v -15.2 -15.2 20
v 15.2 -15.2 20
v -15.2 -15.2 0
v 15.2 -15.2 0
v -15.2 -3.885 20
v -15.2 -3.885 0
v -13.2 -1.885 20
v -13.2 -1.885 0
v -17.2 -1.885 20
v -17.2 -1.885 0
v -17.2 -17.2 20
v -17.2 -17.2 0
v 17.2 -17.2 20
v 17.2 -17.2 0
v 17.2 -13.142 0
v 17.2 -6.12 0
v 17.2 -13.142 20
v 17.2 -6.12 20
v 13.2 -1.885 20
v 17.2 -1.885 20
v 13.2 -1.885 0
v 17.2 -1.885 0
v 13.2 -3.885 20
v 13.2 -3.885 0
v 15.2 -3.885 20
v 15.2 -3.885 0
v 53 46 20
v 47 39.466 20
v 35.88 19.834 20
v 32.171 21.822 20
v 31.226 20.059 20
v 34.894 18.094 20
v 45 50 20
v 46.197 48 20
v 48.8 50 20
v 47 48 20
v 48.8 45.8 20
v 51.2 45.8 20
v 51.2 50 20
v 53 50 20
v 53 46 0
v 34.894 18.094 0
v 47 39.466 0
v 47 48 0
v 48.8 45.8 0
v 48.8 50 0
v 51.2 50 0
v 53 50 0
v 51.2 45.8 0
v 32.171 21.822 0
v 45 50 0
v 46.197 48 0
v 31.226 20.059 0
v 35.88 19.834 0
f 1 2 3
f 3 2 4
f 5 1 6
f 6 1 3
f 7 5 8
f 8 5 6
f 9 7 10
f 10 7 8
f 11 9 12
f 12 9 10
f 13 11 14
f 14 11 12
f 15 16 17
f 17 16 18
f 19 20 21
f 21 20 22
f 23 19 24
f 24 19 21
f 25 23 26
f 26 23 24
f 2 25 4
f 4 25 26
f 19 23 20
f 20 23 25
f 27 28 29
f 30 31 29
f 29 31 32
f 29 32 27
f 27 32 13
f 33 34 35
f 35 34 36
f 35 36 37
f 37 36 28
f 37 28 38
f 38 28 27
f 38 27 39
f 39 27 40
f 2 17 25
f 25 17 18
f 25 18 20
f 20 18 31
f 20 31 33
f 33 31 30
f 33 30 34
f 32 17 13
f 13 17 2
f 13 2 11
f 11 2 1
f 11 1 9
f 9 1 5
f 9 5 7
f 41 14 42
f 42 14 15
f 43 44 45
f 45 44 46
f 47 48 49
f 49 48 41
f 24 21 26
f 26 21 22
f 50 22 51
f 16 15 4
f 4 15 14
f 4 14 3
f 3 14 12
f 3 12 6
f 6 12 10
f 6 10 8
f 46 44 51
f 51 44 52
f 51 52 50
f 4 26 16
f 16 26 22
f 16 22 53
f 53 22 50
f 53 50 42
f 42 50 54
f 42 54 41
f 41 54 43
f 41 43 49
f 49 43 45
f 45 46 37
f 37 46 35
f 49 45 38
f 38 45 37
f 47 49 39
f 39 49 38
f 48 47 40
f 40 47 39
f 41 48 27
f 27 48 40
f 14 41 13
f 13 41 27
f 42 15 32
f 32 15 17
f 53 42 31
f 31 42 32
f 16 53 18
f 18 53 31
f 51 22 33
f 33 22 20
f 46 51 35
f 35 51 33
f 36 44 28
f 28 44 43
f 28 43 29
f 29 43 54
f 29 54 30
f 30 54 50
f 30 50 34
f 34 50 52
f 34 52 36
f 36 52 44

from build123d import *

# Parameters (mm, degrees)
BOSS_EXTRUDE1_DEPTH = 20
BOSS_EXTRUDE2_DEPTH = 20


with BuildPart() as part:
    # Sketch1 → Boss-Extrude1 (new body)
    with BuildSketch(Plane.XY):
        Polygon((-15.2, -15.2), (-15.2, -3.885), (-13.2, -1.885), (-17.2, -1.885), (-17.2, -17.2), (17.2, -17.2), (17.2, -1.885), (13.2, -1.885), (13.2, -3.885), (15.2, -3.885), (15.2, -15.2), align=None)
    extrude(amount=BOSS_EXTRUDE1_DEPTH)

    # Sketch2 → Boss-Extrude2 (add)
    with BuildSketch(Plane(origin=(0, 0, 0), x_dir=(-1, 0, 0), z_dir=(0, 0, -1))):
        Polygon((-45, 50), (-17.2, -1.885), (-17.2, -6.119772924), (-31.226415692, 20.058665139), (-34.89374, 18.093711573), (-17.2, -13.142164629), (-17.2, -17.2), (-53, 46), (-53, 50), (-51.2, 50), (-51.2, 45.8), (-48.8, 45.8), (-48.8, 50), align=None)
        Polygon((-46.197392065, 48), (-32.170976373, 21.821561937), (-35.879759796, 19.834394564), (-47, 39.4656566), (-47, 48), align=None, mode=Mode.SUBTRACT)
    extrude(amount=-BOSS_EXTRUDE2_DEPTH)


solid = part.part
